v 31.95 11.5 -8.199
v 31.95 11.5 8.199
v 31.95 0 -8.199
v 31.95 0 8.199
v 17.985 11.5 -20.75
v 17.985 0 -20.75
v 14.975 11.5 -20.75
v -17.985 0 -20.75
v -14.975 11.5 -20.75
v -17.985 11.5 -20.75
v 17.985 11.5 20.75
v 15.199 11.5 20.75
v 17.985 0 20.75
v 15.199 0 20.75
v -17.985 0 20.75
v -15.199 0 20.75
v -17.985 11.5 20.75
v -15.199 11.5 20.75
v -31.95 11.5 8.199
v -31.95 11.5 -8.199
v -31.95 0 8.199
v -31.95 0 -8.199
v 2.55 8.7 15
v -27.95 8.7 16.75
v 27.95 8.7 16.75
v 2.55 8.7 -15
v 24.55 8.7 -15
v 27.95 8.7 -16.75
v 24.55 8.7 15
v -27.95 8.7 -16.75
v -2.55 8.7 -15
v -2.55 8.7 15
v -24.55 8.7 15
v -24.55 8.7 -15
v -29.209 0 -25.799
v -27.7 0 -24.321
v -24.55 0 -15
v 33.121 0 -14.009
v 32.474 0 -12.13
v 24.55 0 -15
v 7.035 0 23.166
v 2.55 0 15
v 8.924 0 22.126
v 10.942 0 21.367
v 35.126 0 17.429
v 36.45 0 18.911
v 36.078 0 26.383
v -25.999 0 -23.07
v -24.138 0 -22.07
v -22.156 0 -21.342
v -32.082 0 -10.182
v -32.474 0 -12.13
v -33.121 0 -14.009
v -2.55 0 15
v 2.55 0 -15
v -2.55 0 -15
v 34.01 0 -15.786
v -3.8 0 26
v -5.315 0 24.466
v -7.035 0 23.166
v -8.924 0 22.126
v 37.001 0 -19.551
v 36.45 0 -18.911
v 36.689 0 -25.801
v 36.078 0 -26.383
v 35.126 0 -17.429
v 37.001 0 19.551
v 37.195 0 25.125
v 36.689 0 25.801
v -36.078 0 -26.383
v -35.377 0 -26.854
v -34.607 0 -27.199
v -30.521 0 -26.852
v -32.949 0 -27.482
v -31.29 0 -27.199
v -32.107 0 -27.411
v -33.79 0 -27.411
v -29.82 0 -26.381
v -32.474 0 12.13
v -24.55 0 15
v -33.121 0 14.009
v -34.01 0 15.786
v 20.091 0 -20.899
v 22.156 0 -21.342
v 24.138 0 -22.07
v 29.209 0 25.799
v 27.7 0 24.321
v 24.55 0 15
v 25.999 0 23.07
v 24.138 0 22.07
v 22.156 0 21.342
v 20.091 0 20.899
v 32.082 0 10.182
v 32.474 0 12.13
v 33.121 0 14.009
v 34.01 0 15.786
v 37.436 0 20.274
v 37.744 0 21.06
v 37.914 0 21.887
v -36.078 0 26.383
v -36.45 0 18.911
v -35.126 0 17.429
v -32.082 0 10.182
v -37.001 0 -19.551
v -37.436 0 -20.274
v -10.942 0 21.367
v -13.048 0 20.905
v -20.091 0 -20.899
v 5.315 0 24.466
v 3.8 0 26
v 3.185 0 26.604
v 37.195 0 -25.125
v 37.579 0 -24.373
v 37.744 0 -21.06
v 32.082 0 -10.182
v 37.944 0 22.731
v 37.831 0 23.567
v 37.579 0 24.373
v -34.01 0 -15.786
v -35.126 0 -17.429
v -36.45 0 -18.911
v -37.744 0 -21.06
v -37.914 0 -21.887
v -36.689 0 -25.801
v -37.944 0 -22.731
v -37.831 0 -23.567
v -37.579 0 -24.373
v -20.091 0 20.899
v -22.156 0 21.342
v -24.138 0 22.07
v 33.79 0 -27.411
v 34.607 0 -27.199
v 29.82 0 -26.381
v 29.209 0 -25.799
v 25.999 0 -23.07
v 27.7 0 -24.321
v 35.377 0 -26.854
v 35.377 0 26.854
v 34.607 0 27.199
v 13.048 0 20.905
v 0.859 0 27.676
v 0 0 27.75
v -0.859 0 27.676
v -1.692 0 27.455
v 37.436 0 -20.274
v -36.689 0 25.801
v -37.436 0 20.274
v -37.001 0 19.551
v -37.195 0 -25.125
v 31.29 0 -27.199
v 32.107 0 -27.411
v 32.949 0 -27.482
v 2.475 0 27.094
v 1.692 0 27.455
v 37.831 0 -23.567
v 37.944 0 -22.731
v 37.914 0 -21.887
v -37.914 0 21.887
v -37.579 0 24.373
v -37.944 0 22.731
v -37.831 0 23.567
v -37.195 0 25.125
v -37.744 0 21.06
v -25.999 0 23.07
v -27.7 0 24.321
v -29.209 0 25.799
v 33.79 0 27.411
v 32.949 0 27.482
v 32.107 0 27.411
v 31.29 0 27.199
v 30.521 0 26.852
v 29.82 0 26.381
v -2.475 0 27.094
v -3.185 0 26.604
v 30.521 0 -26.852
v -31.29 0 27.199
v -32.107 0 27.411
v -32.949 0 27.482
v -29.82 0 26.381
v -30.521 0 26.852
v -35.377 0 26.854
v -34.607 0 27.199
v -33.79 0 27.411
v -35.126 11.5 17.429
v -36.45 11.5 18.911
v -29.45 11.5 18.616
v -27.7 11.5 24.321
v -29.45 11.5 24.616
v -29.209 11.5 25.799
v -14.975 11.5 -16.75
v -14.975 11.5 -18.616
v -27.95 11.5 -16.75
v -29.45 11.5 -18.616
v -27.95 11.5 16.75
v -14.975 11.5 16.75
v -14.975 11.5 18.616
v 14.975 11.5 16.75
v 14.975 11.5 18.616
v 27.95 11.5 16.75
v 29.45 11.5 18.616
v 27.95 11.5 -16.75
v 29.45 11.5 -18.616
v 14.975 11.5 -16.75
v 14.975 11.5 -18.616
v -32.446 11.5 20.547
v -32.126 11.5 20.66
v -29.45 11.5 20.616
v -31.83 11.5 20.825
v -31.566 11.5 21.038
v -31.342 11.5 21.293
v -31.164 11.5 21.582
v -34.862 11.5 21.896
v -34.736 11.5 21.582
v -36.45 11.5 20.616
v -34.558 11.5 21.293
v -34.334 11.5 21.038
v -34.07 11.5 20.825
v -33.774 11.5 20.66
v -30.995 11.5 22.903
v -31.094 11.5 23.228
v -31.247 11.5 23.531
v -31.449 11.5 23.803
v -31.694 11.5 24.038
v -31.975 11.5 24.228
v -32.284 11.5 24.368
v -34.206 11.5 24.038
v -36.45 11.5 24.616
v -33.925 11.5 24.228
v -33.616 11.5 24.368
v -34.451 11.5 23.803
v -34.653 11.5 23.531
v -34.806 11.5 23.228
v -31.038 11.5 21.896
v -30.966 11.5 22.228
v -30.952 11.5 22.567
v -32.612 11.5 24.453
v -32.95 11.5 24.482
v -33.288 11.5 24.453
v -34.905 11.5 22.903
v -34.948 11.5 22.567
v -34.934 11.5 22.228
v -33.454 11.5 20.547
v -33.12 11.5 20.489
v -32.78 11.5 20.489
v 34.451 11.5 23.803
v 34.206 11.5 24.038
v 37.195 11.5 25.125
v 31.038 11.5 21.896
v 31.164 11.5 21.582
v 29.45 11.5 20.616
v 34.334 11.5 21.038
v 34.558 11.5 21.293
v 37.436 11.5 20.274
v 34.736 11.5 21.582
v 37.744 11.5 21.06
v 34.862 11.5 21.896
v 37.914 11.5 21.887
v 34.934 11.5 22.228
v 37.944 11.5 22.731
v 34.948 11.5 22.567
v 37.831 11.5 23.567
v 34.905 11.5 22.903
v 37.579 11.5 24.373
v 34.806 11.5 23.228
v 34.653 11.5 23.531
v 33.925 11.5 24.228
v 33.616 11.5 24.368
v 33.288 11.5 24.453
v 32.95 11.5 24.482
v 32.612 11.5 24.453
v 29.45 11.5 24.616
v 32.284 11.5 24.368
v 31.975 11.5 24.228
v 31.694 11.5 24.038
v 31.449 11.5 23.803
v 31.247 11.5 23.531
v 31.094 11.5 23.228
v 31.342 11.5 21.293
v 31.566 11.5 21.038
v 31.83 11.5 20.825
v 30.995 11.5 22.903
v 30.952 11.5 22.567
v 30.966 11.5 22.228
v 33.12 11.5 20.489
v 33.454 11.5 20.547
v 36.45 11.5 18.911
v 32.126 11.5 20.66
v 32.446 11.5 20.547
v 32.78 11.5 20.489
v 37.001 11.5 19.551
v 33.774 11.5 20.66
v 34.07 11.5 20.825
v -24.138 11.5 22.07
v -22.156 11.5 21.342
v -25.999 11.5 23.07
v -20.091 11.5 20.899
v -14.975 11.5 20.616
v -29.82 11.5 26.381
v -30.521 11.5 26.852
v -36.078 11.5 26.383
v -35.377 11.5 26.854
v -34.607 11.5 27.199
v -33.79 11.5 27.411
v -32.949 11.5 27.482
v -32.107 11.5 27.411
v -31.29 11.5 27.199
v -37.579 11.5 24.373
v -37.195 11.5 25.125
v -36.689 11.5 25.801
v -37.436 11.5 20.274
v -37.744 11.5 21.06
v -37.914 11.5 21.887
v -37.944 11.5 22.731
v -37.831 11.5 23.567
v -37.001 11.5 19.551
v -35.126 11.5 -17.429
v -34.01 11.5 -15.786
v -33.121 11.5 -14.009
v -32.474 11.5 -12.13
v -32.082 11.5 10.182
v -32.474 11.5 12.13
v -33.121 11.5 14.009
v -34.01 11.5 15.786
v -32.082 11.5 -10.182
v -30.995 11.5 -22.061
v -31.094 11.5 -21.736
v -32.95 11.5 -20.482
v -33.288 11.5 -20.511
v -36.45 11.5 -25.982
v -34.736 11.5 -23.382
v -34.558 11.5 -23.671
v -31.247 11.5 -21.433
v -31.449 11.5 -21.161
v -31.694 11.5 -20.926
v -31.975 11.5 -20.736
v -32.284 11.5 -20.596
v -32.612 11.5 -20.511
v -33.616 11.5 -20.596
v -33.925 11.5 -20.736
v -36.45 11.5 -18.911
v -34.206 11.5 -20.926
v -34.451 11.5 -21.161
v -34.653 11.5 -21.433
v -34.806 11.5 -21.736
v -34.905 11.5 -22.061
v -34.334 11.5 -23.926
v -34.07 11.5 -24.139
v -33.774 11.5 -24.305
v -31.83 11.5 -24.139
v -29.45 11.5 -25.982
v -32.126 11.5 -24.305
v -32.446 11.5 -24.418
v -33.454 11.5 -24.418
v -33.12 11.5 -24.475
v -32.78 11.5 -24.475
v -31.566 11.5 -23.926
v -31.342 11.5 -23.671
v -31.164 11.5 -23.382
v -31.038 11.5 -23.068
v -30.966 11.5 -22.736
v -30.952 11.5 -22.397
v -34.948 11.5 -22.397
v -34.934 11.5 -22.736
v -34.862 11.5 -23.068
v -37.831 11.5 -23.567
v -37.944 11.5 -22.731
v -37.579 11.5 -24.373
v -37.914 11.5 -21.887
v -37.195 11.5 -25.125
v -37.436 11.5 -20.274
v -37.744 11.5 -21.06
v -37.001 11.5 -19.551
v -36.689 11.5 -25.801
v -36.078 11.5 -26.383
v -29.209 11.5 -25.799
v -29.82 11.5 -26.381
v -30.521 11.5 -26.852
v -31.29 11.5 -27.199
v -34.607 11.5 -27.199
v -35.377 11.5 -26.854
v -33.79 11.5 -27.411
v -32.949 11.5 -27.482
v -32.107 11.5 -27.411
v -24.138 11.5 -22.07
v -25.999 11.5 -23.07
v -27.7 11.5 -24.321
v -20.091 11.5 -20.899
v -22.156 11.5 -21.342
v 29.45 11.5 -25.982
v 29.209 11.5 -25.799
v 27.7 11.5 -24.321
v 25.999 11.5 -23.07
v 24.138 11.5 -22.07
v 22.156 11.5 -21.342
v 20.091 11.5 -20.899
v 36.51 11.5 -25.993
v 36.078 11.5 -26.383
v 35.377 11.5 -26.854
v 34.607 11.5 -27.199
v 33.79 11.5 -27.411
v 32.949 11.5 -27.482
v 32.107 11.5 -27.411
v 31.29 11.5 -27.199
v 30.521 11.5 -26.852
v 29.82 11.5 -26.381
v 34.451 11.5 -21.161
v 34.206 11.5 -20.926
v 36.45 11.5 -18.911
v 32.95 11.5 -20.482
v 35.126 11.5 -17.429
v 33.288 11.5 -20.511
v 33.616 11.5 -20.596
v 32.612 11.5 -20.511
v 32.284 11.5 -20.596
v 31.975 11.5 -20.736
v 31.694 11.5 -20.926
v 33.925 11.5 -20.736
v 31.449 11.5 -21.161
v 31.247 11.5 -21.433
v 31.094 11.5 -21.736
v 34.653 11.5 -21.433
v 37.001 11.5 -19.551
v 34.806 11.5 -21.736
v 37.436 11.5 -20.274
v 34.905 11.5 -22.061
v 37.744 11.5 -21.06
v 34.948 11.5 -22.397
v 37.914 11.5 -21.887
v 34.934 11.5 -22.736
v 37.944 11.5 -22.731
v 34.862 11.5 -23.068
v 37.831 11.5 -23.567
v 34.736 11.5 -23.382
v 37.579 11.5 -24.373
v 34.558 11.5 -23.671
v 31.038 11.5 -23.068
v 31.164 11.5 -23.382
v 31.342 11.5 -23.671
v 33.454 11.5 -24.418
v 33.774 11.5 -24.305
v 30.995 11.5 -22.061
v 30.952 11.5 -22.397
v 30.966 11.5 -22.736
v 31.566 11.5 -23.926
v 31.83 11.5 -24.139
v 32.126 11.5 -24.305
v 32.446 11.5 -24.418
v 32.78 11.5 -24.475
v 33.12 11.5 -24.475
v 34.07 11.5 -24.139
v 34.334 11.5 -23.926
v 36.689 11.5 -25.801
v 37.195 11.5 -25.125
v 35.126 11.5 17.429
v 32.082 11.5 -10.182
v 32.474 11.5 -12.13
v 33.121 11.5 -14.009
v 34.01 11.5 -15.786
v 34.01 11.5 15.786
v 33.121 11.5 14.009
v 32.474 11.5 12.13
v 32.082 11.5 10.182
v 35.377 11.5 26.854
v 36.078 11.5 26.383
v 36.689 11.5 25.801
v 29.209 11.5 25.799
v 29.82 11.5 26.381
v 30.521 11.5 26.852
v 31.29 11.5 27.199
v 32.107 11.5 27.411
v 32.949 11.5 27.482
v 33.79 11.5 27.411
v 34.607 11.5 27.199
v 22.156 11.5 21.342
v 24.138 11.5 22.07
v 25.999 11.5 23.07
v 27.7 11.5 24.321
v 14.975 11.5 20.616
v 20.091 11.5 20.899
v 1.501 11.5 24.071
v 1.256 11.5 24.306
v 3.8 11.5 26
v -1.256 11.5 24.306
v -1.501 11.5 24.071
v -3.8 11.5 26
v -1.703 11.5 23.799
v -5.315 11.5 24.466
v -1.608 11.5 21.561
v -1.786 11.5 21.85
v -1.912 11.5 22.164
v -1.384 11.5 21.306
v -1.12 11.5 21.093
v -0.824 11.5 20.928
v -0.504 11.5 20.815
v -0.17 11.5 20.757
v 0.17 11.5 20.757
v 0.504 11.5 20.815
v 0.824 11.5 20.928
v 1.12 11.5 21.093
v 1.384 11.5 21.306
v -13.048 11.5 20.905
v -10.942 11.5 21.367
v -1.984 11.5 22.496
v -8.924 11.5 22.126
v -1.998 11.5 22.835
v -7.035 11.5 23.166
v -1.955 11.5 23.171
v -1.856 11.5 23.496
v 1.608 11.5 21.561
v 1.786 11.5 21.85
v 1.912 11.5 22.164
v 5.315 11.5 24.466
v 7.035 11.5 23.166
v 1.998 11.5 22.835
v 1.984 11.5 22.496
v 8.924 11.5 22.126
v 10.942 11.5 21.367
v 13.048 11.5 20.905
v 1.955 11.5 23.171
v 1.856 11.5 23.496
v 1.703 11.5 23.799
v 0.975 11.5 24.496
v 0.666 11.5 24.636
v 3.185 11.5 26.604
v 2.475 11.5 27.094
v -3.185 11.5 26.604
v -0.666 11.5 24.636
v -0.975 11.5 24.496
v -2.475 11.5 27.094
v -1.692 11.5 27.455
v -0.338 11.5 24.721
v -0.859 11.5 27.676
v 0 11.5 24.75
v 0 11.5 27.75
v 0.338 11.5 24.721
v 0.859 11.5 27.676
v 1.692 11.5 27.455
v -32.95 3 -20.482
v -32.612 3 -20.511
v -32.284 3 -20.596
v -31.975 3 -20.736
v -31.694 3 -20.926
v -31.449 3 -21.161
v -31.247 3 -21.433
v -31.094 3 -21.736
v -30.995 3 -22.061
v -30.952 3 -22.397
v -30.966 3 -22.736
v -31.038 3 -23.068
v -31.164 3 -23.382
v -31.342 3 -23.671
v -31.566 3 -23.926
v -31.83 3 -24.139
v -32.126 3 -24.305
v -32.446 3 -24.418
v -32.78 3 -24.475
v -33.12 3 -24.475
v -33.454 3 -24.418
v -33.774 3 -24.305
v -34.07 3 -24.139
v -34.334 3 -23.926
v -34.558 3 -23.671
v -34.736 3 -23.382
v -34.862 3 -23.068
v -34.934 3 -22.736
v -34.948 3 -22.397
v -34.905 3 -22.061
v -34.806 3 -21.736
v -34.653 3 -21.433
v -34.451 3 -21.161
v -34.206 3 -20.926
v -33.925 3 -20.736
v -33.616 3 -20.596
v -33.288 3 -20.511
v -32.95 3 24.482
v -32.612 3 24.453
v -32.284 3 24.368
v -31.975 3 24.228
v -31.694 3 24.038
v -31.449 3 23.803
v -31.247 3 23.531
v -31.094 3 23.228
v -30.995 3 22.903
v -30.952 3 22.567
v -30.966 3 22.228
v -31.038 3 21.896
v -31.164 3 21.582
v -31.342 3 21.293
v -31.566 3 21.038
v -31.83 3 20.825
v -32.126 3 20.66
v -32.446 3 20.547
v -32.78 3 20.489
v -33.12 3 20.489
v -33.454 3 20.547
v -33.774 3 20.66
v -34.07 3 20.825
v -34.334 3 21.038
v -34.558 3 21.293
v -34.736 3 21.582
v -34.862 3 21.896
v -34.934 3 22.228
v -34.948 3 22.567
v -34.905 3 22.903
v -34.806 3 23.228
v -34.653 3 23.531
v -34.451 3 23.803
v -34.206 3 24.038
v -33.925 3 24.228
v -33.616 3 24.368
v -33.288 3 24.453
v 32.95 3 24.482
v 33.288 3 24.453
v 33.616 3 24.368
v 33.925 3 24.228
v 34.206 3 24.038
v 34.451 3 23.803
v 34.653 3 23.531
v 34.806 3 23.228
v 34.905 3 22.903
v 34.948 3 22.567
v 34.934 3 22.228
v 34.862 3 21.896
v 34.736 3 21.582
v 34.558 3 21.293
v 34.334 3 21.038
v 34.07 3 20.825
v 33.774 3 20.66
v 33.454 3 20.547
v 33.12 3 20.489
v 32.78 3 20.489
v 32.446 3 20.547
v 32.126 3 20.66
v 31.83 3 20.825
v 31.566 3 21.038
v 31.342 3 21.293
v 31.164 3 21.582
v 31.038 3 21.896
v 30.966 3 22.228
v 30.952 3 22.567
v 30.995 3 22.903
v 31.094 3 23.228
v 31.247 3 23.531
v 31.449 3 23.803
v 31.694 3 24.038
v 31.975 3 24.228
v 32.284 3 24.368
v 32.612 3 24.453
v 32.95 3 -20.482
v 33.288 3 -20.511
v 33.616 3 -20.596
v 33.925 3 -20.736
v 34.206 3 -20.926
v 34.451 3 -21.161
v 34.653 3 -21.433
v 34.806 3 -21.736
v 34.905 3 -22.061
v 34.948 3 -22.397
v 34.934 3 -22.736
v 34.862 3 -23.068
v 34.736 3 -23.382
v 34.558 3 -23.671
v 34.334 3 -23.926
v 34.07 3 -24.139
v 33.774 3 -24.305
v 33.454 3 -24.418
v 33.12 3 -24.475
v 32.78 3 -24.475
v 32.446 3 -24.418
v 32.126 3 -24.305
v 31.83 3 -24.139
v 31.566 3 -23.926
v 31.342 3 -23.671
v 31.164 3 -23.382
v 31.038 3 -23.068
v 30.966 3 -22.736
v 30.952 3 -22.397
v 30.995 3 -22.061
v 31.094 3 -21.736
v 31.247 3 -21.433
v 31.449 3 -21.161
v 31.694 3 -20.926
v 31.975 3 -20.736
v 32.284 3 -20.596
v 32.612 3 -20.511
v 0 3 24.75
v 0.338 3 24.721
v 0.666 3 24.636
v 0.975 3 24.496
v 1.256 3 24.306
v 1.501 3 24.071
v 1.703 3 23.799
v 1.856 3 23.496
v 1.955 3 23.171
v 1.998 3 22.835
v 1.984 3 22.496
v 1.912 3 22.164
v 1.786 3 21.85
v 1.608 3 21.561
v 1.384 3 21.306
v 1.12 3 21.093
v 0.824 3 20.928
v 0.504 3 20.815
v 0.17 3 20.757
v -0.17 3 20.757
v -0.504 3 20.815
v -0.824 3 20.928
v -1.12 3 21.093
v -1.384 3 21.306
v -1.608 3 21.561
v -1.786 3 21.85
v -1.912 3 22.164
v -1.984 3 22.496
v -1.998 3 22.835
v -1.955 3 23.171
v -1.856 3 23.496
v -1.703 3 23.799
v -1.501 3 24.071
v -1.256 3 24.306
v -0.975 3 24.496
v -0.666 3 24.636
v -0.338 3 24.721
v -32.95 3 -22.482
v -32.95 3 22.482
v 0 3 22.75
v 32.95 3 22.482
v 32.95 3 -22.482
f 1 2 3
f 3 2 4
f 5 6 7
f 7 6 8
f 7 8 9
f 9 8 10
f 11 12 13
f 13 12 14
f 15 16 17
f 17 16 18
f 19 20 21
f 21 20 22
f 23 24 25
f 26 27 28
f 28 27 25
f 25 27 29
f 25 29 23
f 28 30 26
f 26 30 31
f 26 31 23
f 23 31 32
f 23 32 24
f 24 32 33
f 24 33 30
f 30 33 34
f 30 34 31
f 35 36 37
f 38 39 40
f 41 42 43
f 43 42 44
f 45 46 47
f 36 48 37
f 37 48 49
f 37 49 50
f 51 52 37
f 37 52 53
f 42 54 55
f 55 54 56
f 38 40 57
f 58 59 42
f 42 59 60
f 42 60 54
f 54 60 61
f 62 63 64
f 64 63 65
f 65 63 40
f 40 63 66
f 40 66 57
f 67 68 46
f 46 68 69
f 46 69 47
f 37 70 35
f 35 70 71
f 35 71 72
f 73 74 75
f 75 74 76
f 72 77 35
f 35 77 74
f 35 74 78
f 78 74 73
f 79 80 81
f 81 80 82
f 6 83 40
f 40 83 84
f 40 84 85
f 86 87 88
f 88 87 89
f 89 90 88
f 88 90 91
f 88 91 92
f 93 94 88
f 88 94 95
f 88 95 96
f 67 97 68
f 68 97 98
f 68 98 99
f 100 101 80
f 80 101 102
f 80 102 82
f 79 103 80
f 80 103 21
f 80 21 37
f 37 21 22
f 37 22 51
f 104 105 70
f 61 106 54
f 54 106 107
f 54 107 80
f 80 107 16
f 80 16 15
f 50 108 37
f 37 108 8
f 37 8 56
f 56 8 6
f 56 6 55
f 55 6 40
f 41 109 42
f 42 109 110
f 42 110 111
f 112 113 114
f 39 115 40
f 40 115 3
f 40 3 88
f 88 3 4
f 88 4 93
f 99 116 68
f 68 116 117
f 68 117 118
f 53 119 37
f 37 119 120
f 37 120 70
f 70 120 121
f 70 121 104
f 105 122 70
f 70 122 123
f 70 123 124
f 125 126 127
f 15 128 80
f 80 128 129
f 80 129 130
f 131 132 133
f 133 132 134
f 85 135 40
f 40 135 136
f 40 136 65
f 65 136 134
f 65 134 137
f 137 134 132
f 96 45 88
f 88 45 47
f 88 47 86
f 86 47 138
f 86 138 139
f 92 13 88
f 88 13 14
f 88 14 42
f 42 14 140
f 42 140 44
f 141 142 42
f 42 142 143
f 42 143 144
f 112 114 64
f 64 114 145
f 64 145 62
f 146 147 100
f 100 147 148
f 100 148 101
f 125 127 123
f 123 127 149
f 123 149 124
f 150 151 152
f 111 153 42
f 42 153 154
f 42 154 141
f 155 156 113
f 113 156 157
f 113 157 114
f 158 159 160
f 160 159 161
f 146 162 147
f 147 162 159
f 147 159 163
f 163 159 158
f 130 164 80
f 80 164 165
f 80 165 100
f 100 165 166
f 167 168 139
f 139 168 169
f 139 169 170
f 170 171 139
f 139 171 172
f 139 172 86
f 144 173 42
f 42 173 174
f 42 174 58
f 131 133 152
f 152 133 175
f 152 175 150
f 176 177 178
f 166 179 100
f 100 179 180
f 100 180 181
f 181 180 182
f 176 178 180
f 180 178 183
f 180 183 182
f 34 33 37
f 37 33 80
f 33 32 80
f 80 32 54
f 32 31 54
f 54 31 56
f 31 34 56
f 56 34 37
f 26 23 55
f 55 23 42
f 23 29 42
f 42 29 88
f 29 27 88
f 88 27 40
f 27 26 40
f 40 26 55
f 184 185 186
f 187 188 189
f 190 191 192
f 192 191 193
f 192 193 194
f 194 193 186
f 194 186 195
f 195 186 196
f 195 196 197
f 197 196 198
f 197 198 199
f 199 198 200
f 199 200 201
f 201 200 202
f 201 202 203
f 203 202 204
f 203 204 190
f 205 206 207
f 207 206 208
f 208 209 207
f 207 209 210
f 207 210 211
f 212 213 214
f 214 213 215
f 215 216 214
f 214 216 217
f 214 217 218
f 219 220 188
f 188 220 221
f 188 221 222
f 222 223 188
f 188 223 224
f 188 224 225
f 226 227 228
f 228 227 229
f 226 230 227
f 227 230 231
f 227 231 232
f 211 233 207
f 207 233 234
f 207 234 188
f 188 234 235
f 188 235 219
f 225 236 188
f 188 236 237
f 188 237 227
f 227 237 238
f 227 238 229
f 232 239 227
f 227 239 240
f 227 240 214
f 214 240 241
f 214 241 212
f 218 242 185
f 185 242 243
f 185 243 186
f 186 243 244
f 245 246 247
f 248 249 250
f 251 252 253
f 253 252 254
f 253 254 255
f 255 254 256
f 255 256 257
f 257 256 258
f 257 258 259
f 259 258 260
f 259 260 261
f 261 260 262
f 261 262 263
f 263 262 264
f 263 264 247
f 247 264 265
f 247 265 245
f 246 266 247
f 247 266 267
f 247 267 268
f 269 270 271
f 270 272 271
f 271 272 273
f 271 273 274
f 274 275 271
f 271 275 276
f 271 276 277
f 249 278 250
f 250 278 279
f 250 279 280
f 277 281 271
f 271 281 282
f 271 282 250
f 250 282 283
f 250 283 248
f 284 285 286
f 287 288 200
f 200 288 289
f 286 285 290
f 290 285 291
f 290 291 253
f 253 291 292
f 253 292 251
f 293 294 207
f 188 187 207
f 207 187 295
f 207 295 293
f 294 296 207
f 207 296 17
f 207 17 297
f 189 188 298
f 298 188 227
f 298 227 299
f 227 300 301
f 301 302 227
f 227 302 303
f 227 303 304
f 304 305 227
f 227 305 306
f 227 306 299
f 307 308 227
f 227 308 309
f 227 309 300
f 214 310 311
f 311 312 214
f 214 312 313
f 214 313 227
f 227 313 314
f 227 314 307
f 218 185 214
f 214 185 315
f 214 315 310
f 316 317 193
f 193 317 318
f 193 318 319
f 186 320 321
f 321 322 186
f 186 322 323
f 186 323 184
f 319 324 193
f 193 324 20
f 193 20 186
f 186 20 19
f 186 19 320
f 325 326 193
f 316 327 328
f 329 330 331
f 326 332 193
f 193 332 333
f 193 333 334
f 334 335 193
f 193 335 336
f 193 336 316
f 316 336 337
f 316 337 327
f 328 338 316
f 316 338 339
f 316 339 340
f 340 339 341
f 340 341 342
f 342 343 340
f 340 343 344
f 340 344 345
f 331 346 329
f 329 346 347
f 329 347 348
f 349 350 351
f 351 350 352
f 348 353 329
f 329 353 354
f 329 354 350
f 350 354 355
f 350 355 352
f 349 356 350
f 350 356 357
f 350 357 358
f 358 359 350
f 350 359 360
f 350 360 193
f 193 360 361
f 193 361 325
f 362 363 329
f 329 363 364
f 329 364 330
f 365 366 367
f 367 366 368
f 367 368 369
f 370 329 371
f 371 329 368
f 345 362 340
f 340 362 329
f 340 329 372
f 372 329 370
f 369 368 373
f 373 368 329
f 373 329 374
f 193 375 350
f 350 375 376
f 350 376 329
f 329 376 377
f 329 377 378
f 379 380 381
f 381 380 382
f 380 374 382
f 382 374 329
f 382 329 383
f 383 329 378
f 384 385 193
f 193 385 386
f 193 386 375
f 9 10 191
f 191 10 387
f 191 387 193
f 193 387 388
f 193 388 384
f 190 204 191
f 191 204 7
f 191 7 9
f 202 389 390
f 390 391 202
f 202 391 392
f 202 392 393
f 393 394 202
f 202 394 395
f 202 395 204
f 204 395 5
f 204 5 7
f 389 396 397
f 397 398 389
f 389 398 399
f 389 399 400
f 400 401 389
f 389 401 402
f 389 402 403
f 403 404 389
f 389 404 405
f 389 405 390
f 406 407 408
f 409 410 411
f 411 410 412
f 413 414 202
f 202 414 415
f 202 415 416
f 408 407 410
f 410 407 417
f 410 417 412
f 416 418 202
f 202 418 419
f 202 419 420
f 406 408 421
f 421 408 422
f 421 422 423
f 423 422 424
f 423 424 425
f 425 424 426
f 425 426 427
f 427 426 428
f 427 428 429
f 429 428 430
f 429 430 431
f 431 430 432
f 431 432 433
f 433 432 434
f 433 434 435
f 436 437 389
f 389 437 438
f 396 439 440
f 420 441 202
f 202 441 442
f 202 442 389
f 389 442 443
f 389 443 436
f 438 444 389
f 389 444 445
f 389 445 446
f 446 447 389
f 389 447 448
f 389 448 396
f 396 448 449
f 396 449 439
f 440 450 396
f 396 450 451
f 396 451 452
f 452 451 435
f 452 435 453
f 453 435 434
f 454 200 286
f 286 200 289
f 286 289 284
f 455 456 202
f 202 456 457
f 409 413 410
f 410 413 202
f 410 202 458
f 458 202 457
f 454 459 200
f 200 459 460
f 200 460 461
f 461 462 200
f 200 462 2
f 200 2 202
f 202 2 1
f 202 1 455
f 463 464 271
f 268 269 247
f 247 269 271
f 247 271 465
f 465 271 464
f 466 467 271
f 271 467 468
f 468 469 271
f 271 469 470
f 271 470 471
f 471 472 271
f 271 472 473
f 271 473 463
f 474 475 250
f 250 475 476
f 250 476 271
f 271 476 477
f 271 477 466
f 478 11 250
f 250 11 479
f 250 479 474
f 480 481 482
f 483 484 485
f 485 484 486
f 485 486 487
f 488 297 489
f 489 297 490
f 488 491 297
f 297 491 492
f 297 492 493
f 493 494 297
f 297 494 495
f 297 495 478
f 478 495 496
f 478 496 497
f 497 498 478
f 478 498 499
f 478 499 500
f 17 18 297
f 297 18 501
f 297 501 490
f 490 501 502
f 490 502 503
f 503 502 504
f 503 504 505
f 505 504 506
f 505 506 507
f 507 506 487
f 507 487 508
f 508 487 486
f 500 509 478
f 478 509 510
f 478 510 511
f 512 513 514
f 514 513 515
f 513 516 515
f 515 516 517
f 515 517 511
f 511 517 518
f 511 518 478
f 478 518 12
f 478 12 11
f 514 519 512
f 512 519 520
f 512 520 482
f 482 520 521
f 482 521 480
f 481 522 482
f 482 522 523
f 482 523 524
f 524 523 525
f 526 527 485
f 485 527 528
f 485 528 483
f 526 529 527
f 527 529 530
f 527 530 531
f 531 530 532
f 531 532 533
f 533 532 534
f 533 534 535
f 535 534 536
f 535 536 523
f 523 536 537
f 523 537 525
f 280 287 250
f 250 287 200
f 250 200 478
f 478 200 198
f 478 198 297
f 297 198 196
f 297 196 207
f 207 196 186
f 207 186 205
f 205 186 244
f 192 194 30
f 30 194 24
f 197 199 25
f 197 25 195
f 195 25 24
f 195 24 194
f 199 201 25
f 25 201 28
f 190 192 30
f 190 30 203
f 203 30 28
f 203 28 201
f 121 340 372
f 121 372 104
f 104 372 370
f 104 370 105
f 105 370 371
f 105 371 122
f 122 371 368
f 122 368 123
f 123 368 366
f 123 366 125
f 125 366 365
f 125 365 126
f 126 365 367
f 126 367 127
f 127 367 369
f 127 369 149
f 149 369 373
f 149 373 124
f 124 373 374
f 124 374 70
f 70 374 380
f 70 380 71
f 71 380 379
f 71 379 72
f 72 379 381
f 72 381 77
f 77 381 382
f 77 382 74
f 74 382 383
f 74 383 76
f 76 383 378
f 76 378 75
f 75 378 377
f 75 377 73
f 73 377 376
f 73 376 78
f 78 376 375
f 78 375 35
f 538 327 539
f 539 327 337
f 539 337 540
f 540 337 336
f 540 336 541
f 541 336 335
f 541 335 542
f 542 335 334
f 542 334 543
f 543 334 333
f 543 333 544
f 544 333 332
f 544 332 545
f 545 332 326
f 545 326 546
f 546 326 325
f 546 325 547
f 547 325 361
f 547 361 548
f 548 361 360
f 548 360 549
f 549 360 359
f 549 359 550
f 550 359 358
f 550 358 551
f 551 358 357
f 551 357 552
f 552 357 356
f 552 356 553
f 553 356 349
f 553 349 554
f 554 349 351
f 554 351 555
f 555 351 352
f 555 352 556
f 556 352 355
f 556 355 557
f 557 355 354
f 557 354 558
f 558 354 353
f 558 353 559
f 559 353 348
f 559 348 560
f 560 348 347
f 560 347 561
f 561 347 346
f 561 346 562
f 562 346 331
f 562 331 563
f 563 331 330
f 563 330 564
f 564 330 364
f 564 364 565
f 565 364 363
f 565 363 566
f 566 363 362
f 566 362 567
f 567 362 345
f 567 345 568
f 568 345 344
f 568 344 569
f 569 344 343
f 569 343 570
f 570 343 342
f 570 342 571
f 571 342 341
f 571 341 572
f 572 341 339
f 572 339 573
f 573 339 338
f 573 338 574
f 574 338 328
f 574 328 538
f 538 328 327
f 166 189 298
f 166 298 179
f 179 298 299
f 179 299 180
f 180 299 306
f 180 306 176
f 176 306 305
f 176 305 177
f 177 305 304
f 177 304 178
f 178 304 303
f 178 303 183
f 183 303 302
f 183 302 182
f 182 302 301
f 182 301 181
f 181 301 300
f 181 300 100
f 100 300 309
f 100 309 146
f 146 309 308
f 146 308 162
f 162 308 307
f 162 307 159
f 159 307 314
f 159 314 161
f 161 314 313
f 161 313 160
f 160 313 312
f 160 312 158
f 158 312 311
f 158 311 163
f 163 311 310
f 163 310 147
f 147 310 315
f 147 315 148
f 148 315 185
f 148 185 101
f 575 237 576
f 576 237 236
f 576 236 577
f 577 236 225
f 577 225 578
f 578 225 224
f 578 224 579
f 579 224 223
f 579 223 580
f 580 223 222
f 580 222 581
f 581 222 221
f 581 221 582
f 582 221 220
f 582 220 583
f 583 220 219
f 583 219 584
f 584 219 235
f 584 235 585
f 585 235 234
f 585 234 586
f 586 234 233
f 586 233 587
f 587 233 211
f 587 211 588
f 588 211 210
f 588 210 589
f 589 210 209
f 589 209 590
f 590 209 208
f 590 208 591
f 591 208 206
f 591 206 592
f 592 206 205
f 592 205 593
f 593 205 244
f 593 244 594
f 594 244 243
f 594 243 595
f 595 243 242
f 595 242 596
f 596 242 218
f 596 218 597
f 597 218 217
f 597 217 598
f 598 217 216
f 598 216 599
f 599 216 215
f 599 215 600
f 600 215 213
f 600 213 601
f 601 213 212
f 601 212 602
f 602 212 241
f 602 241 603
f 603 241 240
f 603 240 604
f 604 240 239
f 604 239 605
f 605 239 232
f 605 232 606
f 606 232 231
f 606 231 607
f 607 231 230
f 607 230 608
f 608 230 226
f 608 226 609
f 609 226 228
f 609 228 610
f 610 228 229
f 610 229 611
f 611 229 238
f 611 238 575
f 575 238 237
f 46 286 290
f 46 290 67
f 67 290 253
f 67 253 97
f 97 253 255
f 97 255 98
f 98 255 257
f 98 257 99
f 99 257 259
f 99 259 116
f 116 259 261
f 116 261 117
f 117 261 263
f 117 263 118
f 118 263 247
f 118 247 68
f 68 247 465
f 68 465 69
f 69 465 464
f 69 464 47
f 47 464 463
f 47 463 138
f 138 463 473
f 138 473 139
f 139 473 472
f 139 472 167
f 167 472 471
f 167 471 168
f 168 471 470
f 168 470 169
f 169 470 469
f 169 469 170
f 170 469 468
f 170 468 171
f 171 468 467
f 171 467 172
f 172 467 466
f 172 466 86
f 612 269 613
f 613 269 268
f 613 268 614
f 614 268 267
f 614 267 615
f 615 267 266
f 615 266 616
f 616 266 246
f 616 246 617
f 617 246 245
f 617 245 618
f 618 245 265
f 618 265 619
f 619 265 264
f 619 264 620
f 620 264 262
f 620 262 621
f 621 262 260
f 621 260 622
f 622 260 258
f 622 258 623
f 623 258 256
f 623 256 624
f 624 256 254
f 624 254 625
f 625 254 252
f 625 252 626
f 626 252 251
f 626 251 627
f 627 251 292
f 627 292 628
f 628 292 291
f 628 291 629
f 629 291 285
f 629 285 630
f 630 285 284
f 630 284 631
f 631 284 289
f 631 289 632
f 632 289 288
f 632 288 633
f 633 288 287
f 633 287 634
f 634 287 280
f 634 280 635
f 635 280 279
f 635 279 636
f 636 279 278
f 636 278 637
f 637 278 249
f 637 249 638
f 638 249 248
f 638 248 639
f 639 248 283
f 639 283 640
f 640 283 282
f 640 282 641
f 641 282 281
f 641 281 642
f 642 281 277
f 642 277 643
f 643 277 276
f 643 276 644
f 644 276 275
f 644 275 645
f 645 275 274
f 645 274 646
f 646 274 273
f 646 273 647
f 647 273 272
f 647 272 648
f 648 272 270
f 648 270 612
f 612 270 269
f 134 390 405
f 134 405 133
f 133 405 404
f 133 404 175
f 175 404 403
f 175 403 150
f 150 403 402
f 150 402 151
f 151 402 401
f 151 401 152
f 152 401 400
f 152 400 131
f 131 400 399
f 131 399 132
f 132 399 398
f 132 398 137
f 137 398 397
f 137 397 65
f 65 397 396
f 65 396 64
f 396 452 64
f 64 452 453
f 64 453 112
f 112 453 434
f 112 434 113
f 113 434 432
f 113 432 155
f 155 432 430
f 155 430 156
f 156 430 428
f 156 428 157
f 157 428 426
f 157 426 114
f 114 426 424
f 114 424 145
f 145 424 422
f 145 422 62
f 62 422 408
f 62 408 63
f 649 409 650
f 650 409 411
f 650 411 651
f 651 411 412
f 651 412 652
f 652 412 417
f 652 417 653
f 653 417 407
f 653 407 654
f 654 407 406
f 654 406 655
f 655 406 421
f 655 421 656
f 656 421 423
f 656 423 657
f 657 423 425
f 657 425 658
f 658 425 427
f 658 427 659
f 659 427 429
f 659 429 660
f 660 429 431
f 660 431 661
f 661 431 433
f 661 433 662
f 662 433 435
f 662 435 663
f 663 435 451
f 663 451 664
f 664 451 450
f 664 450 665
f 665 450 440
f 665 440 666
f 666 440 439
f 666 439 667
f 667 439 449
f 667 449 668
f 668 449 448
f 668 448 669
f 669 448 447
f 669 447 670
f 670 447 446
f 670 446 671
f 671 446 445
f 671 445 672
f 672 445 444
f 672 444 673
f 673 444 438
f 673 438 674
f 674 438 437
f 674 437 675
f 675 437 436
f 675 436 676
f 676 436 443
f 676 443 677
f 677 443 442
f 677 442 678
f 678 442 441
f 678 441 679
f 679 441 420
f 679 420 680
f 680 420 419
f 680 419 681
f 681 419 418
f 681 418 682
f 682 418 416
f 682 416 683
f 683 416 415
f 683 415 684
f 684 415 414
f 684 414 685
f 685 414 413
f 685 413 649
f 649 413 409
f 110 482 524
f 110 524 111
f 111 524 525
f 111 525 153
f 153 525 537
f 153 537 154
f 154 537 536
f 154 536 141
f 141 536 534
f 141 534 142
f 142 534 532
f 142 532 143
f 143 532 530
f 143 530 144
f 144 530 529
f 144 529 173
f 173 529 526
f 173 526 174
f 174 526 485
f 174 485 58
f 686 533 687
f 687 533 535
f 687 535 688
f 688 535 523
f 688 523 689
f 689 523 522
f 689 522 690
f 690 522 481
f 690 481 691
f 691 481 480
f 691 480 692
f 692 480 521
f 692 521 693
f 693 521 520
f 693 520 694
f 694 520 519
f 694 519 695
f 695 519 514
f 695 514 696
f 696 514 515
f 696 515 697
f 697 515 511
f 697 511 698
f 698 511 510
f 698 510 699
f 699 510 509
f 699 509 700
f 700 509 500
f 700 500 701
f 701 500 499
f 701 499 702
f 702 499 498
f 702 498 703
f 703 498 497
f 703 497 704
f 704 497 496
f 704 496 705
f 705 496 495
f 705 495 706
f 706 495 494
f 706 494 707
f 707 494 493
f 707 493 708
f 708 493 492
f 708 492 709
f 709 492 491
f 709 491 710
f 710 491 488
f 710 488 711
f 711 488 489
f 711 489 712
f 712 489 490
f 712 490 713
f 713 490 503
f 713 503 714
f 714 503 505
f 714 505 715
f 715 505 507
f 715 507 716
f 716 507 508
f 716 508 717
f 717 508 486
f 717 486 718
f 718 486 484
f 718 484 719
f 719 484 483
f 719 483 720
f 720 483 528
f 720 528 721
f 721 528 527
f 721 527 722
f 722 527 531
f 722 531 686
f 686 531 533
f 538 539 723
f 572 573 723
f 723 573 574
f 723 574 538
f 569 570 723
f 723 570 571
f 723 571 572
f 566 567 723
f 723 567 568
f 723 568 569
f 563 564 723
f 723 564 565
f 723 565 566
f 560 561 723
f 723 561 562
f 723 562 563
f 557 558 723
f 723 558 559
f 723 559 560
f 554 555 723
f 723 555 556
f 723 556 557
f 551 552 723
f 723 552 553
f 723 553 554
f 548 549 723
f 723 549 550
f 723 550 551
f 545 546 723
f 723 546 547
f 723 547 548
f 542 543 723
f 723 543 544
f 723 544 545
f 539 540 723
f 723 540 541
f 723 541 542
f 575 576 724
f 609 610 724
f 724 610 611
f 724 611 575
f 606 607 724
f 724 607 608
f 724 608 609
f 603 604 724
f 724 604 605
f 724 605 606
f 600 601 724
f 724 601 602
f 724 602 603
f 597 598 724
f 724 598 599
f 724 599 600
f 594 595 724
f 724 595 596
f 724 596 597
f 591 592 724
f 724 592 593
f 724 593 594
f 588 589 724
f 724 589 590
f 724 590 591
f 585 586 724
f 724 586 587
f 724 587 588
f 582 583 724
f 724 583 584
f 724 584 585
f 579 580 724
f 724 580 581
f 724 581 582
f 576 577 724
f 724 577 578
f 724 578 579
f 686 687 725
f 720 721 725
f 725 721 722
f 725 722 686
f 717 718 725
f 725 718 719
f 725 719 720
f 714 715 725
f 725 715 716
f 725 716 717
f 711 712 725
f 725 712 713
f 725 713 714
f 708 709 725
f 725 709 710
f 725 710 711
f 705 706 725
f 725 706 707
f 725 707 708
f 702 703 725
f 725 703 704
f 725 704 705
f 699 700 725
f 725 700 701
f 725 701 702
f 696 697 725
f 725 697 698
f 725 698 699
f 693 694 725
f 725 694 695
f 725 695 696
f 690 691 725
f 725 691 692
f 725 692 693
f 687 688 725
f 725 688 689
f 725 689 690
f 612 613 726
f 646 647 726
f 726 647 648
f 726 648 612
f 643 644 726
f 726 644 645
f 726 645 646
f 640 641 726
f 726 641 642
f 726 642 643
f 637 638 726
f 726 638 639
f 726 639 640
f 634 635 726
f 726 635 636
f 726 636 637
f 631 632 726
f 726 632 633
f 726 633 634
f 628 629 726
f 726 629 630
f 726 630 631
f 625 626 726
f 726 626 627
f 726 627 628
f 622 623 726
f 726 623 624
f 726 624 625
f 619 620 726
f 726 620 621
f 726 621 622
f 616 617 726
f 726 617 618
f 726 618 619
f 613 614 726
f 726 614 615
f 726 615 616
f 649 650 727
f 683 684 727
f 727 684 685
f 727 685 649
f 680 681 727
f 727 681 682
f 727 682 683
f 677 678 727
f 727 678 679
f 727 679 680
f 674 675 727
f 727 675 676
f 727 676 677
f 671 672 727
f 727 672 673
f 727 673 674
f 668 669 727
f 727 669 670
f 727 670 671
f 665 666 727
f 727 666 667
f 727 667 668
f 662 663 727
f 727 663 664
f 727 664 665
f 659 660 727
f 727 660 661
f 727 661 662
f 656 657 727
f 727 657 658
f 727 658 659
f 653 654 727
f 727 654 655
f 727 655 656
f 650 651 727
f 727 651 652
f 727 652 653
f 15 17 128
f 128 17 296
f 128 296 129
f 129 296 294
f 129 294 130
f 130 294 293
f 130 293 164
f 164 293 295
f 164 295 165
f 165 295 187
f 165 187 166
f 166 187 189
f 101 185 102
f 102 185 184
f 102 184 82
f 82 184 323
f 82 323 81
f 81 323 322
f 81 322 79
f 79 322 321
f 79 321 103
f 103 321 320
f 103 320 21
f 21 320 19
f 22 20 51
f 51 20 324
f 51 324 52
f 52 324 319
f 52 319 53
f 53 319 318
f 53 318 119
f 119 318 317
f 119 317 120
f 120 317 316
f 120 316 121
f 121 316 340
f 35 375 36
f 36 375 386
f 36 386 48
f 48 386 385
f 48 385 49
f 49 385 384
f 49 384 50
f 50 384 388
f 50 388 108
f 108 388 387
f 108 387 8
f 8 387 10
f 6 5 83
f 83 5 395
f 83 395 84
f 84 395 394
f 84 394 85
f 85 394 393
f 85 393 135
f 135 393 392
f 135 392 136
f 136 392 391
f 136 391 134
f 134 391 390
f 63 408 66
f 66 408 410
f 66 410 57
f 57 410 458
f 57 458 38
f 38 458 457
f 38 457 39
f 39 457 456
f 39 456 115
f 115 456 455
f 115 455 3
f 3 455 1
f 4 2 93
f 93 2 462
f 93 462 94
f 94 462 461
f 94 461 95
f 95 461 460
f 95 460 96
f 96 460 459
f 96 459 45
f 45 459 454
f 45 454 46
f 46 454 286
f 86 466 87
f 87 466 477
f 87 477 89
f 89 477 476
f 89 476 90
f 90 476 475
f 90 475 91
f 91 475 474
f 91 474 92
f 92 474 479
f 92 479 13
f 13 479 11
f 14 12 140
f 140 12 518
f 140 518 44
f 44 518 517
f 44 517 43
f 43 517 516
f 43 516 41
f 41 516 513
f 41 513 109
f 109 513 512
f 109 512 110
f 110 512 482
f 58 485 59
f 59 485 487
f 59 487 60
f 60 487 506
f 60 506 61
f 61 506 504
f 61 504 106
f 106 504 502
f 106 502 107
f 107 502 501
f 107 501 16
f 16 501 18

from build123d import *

# Parameters (mm, degrees)
SKETCH1_W           = 22
SKETCH1_H           = 30
BOSS_EXTRUDE1_DEPTH = 8.7
SKETCH2_W           = 63.9
SKETCH2_H           = 41.5
SKETCH2_W_2         = 55.9
SKETCH2_H_2         = 33.5
BOSS_EXTRUDE2_DEPTH = 11.5
SKETCH3_R           = 5
SKETCH3_R_2         = 2
BOSS_EXTRUDE3_DEPTH = 8.5
SKETCH4_R           = 5
BOSS_EXTRUDE4_DEPTH = 3
FILLET2_R           = 15


with BuildPart() as part:
    # Sketch1 → Boss-Extrude1 (new body)
    with BuildSketch(Plane(origin=(0, 0, 0), x_dir=(1, 0, 0), z_dir=(0, 1, 0))):
        Polygon((-26.45, -16.75), (26.45, -16.75), (27.95, -16.75), (27.95, 16.75), (26.45, 16.75), (-26.45, 16.75), (-27.95, 16.75), (-27.95, -16.75), align=None)
        with Locations((-13.55, 0)):
            Rectangle(SKETCH1_W, SKETCH1_H, mode=Mode.SUBTRACT)
        with Locations((13.55, 0)):
            Rectangle(SKETCH1_W, SKETCH1_H, mode=Mode.SUBTRACT)
    extrude(amount=BOSS_EXTRUDE1_DEPTH)

    # Sketch2 → Boss-Extrude2 (add)
    with BuildSketch(Plane.XZ):
        Rectangle(SKETCH2_W, SKETCH2_H)
        Rectangle(SKETCH2_W_2, SKETCH2_H_2, mode=Mode.SUBTRACT)
    extrude(amount=-BOSS_EXTRUDE2_DEPTH)

    # Sketch3 → Boss-Extrude3 (add)
    # profile 1 of 5: a face of its own
    with BuildSketch(Plane(origin=(0, 11.5, 0), x_dir=(1, 0, 0), z_dir=(0, 1, 0))):
        with Locations((-32.95, 22.482050808)):
            Circle(SKETCH3_R)
        with Locations(Location((-32.95, 22.482050808, 0), (0, 0, 270))):
            Circle(SKETCH3_R_2, mode=Mode.SUBTRACT)
    # profile 2 of 5: a face of its own
    with BuildSketch(Plane(origin=(0, 11.5, 0), x_dir=(1, 0, 0), z_dir=(0, 1, 0))):
        with Locations((-32.95, -22.482050808)):
            Circle(SKETCH3_R)
        with Locations(Location((-32.95, -22.482050808, 0), (0, 0, 270))):
            Circle(SKETCH3_R_2, mode=Mode.SUBTRACT)
    # profile 3 of 5: a face of its own
    with BuildSketch(Plane(origin=(0, 11.5, 0), x_dir=(1, 0, 0), z_dir=(0, 1, 0))):
        with Locations((32.95, -22.482050808)):
            Circle(SKETCH3_R)
        with Locations(Location((32.95, -22.482050808, 0), (0, 0, 270))):
            Circle(SKETCH3_R_2, mode=Mode.SUBTRACT)
    # profile 4 of 5: a face of its own
    with BuildSketch(Plane(origin=(0, 11.5, 0), x_dir=(1, 0, 0), z_dir=(0, 1, 0))):
        with Locations((32.95, 22.482050808)):
            Circle(SKETCH3_R)
        with Locations(Location((32.95, 22.482050808, 0), (0, 0, 270))):
            Circle(SKETCH3_R_2, mode=Mode.SUBTRACT)
    # profile 5 of 5: a face of its own
    with BuildSketch(Plane(origin=(0, 11.5, 0), x_dir=(1, 0, 0), z_dir=(0, 1, 0))):
        with Locations((0, -22.75)):
            Circle(SKETCH3_R)
        with Locations(Location((0, -22.75, 0), (0, 0, 270))):
            Circle(SKETCH3_R_2, mode=Mode.SUBTRACT)
    extrude(amount=-BOSS_EXTRUDE3_DEPTH)

    # Sketch4 → Boss-Extrude4 (add)
    with BuildSketch(Plane.XZ.offset(-3)):
        with Locations((-32.95, -22.482050808)):
            Circle(SKETCH4_R)
        with Locations((-32.95, 22.482050808)):
            Circle(SKETCH4_R)
        with Locations((0, 22.75)):
            Circle(SKETCH4_R)
        with Locations((32.95, 22.482050808)):
            Circle(SKETCH4_R)
        with Locations((32.95, -22.482050808)):
            Circle(SKETCH4_R)
    extrude(amount=BOSS_EXTRUDE4_DEPTH)

    # Fillet2
    fillet2_edges = [part.edges().sort_by_distance(p)[0] for p in [
        (28.25958424, 5.75, 20.75),
        (31.95, 5.75, 17.583071322),
        (31.95, 5.75, -17.583071322),
        (28.25958424, 5.75, -20.75),
        (4.582575695, 5.75, 20.75),
        (-4.582575695, 5.75, 20.75),
        (-28.25958424, 5.75, -20.75),
        (-31.95, 5.75, -17.583071322),
        (-28.25958424, 5.75, 20.75),
        (-31.95, 5.75, 17.583071322),
    ]]
    fillet(fillet2_edges, radius=FILLET2_R)


solid = part.part
